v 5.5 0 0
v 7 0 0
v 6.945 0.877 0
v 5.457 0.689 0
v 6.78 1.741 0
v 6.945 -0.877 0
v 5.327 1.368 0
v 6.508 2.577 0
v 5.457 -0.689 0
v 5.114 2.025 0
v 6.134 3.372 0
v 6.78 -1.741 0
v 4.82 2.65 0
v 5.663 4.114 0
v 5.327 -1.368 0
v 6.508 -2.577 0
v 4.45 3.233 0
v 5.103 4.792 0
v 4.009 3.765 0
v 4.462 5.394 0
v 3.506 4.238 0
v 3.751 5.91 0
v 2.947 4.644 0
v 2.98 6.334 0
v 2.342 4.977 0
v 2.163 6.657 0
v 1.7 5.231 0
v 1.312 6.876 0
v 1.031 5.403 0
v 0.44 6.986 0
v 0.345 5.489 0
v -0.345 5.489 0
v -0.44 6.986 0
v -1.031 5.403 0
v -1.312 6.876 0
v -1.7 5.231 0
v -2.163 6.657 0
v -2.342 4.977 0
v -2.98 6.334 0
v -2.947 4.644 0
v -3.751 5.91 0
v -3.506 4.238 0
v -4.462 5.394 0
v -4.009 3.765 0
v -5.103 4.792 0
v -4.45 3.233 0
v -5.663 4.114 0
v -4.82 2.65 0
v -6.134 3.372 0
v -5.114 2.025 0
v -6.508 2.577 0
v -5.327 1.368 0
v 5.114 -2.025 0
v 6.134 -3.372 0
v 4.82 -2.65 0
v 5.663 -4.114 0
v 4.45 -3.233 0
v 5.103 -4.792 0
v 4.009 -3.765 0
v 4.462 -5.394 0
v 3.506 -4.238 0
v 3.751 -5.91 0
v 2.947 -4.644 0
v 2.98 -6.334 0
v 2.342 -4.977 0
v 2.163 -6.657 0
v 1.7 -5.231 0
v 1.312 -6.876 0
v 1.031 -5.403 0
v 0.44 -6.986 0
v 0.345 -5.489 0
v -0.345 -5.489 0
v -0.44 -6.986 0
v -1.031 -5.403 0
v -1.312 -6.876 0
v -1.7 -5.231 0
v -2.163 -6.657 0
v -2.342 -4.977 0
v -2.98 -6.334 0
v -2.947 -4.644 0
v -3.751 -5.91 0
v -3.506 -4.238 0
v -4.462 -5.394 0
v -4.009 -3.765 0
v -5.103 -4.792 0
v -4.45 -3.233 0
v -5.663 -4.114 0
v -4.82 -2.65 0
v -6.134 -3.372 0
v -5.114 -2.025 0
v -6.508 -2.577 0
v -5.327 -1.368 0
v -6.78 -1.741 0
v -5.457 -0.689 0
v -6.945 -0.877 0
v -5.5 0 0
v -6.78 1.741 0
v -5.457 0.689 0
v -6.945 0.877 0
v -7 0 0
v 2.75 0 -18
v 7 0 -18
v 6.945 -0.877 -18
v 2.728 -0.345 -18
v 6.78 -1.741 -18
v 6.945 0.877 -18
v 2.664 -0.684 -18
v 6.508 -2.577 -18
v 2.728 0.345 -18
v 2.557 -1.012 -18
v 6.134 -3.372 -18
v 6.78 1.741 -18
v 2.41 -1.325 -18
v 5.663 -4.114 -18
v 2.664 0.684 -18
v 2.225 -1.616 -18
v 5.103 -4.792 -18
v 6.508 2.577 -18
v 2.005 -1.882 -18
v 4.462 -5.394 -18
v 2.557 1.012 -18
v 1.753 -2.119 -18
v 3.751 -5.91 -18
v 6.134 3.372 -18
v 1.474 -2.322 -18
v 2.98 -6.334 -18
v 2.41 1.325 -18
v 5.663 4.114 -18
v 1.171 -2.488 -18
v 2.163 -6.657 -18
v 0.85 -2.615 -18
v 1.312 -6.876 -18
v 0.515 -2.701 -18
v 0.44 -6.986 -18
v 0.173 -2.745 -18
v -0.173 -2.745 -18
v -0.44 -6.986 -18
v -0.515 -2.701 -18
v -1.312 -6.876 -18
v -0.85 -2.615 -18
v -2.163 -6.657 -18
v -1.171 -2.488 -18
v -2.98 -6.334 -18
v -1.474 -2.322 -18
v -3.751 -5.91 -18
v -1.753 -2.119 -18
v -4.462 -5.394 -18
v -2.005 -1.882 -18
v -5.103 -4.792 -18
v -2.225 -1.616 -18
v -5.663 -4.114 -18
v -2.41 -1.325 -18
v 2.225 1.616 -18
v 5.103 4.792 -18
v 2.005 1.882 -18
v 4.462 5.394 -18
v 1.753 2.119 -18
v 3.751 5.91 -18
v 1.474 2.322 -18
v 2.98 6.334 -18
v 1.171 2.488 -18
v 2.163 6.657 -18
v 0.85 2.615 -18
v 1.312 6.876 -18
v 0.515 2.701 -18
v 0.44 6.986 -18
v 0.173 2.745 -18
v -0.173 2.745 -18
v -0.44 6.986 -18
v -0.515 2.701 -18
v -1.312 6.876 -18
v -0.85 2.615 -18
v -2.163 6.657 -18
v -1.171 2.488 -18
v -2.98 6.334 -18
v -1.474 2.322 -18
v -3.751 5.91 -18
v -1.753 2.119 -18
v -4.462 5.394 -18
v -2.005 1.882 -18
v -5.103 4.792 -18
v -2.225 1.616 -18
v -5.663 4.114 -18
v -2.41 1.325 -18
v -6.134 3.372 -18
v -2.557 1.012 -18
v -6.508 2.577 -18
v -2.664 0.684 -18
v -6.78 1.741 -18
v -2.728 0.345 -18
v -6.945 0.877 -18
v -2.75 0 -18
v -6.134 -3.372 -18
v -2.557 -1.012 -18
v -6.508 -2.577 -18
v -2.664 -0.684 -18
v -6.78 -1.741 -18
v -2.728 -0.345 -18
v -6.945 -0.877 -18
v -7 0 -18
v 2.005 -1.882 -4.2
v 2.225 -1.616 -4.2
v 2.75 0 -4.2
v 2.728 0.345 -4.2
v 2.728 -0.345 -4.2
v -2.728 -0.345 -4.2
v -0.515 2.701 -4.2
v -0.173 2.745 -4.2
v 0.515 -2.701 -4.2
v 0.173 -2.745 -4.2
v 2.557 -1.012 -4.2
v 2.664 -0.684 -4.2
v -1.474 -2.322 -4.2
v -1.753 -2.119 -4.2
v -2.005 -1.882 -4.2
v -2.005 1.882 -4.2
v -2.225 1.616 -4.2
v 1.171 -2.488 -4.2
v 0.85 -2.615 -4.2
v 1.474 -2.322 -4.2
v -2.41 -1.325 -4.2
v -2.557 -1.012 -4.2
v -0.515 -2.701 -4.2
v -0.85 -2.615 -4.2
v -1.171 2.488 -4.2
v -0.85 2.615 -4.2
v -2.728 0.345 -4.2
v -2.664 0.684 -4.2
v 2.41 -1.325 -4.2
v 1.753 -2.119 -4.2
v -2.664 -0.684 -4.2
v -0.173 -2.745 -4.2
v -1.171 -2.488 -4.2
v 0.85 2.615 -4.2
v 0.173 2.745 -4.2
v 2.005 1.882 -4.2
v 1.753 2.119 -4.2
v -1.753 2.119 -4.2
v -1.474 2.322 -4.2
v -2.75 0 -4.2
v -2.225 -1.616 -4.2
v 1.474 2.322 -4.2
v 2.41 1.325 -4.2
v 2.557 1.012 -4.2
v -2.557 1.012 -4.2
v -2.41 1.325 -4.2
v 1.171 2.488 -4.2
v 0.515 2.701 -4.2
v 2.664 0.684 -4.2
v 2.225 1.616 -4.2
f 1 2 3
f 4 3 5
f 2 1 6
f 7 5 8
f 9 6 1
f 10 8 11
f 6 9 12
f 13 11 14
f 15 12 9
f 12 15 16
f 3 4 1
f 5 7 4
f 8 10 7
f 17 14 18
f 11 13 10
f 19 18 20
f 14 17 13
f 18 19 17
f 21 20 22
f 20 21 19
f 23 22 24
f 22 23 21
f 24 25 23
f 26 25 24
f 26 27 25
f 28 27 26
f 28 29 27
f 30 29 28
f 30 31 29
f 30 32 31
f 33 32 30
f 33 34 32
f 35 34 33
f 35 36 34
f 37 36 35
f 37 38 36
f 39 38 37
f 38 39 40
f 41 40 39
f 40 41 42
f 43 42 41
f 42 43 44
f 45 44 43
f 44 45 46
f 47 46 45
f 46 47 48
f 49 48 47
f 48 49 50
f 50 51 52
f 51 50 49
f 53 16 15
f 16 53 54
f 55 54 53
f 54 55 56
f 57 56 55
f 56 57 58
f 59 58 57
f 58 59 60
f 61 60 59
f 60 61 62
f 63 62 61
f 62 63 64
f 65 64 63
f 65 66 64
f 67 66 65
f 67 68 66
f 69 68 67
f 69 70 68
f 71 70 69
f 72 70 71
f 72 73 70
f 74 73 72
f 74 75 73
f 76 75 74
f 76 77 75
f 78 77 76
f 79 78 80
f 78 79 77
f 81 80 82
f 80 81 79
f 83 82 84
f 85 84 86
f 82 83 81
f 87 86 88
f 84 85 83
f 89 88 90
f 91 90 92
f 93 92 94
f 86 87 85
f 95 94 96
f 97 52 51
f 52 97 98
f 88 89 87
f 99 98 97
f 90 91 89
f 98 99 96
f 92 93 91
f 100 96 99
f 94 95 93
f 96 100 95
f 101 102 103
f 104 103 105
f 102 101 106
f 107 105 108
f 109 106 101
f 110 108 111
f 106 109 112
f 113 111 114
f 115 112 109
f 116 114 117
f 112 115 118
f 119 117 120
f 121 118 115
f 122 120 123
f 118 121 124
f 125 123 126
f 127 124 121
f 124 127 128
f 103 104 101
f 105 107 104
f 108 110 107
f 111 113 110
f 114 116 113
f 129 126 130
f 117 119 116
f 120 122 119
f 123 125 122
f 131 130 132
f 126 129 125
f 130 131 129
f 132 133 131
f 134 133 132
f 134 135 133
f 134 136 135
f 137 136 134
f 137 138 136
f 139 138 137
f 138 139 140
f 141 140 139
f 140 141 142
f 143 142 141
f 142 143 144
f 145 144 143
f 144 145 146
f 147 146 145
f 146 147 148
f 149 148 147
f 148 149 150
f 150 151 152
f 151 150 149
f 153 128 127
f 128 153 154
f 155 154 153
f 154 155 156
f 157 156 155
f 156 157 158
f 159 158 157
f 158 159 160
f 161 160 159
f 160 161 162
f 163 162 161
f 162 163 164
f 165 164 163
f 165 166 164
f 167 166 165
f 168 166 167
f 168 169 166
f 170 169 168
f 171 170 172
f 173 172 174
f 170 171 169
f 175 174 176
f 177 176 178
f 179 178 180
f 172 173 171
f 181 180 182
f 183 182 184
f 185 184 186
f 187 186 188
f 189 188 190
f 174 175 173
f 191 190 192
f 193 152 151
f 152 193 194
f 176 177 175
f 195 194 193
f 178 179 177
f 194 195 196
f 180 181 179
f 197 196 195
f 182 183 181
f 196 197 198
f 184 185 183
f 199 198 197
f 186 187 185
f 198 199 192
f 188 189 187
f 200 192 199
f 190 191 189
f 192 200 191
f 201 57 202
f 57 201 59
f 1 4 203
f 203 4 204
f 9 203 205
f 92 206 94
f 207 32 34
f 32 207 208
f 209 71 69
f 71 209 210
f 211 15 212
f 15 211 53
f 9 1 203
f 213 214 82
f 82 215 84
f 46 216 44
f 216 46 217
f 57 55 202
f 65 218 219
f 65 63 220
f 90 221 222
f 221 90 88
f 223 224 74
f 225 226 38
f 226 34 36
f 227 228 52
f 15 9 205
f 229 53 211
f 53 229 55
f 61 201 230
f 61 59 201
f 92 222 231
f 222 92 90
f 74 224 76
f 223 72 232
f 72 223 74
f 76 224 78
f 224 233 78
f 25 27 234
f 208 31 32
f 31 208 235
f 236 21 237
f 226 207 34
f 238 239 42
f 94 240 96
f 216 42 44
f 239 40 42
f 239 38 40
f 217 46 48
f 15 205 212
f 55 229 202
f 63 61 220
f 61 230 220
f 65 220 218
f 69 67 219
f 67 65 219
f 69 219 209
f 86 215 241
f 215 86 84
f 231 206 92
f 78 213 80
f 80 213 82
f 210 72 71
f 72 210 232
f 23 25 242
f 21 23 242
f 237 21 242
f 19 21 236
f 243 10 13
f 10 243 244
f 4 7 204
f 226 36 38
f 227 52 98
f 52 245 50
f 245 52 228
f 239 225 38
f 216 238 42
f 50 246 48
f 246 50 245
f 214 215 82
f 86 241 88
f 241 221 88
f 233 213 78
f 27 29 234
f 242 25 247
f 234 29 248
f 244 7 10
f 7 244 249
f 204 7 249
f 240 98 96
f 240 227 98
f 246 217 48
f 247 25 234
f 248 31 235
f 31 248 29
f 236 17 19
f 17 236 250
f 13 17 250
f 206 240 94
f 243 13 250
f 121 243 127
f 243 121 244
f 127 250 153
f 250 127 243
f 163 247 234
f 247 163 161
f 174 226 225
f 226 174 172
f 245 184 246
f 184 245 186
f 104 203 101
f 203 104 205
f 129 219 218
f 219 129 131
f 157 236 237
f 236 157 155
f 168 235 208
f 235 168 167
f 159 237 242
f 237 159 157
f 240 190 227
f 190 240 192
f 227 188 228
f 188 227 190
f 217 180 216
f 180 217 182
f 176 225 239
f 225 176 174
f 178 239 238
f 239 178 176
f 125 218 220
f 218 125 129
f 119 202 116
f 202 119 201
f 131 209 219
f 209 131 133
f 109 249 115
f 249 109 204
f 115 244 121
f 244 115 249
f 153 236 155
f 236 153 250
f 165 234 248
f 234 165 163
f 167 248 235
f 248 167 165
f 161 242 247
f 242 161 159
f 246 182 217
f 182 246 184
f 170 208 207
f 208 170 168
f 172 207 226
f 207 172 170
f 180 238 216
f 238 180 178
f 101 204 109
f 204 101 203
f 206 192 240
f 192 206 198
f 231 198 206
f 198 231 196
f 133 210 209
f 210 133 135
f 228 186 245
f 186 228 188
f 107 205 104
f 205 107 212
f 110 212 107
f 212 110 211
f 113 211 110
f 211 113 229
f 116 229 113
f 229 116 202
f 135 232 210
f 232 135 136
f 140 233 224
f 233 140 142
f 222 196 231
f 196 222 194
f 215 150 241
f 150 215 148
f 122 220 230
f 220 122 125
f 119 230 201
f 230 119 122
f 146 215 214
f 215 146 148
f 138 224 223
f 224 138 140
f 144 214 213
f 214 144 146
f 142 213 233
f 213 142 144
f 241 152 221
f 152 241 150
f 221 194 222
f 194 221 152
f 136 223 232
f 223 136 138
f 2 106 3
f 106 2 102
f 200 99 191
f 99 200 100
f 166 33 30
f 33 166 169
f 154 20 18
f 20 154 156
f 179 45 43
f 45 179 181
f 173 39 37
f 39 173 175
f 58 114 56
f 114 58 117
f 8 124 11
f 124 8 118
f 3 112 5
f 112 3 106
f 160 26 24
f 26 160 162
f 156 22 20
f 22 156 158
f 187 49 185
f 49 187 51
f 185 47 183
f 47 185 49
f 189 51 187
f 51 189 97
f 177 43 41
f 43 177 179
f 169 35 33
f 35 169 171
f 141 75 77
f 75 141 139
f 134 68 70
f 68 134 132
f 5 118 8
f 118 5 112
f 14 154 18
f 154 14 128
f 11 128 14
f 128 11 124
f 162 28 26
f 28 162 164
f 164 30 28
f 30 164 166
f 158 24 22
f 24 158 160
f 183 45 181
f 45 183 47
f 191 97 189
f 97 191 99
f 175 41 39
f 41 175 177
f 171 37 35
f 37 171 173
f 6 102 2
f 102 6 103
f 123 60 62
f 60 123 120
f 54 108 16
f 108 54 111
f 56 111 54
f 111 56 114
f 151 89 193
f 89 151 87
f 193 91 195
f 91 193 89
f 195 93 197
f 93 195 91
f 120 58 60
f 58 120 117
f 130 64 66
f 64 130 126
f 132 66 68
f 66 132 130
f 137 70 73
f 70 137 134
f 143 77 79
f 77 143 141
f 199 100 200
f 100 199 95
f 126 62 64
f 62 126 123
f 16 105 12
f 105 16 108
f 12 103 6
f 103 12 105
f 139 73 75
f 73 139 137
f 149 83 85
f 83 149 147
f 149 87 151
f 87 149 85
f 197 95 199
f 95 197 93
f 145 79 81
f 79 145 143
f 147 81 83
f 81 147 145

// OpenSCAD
$fn = 50;


difference() {
	union() {
		translate(v = [0, 0, -18.0000000000]) {
			cylinder(h = 18, r = 7.0000000000);
		}
	}
	union() {
		translate(v = [0, 0, 0]) {
			rotate(a = [0, 0, 0]) {
				difference() {
					union() {
						#translate(v = [0, 0, -18.0000000000]) {
							cylinder(h = 18, r = 2.2500000000);
						}
						#translate(v = [0, 0, -4.2000000000]) {
							cylinder(h = 4.2000000000, r1 = 2.7500000000, r2 = 5.5000000000);
						}
						#translate(v = [0, 0, -18.0000000000]) {
							cylinder(h = 18, r = 2.7500000000);
						}
						#translate(v = [0, 0, -18.0000000000]) {
							cylinder(h = 18, r = 2.2500000000);
						}
					}
					union();
				}
			}
		}
	}
}
